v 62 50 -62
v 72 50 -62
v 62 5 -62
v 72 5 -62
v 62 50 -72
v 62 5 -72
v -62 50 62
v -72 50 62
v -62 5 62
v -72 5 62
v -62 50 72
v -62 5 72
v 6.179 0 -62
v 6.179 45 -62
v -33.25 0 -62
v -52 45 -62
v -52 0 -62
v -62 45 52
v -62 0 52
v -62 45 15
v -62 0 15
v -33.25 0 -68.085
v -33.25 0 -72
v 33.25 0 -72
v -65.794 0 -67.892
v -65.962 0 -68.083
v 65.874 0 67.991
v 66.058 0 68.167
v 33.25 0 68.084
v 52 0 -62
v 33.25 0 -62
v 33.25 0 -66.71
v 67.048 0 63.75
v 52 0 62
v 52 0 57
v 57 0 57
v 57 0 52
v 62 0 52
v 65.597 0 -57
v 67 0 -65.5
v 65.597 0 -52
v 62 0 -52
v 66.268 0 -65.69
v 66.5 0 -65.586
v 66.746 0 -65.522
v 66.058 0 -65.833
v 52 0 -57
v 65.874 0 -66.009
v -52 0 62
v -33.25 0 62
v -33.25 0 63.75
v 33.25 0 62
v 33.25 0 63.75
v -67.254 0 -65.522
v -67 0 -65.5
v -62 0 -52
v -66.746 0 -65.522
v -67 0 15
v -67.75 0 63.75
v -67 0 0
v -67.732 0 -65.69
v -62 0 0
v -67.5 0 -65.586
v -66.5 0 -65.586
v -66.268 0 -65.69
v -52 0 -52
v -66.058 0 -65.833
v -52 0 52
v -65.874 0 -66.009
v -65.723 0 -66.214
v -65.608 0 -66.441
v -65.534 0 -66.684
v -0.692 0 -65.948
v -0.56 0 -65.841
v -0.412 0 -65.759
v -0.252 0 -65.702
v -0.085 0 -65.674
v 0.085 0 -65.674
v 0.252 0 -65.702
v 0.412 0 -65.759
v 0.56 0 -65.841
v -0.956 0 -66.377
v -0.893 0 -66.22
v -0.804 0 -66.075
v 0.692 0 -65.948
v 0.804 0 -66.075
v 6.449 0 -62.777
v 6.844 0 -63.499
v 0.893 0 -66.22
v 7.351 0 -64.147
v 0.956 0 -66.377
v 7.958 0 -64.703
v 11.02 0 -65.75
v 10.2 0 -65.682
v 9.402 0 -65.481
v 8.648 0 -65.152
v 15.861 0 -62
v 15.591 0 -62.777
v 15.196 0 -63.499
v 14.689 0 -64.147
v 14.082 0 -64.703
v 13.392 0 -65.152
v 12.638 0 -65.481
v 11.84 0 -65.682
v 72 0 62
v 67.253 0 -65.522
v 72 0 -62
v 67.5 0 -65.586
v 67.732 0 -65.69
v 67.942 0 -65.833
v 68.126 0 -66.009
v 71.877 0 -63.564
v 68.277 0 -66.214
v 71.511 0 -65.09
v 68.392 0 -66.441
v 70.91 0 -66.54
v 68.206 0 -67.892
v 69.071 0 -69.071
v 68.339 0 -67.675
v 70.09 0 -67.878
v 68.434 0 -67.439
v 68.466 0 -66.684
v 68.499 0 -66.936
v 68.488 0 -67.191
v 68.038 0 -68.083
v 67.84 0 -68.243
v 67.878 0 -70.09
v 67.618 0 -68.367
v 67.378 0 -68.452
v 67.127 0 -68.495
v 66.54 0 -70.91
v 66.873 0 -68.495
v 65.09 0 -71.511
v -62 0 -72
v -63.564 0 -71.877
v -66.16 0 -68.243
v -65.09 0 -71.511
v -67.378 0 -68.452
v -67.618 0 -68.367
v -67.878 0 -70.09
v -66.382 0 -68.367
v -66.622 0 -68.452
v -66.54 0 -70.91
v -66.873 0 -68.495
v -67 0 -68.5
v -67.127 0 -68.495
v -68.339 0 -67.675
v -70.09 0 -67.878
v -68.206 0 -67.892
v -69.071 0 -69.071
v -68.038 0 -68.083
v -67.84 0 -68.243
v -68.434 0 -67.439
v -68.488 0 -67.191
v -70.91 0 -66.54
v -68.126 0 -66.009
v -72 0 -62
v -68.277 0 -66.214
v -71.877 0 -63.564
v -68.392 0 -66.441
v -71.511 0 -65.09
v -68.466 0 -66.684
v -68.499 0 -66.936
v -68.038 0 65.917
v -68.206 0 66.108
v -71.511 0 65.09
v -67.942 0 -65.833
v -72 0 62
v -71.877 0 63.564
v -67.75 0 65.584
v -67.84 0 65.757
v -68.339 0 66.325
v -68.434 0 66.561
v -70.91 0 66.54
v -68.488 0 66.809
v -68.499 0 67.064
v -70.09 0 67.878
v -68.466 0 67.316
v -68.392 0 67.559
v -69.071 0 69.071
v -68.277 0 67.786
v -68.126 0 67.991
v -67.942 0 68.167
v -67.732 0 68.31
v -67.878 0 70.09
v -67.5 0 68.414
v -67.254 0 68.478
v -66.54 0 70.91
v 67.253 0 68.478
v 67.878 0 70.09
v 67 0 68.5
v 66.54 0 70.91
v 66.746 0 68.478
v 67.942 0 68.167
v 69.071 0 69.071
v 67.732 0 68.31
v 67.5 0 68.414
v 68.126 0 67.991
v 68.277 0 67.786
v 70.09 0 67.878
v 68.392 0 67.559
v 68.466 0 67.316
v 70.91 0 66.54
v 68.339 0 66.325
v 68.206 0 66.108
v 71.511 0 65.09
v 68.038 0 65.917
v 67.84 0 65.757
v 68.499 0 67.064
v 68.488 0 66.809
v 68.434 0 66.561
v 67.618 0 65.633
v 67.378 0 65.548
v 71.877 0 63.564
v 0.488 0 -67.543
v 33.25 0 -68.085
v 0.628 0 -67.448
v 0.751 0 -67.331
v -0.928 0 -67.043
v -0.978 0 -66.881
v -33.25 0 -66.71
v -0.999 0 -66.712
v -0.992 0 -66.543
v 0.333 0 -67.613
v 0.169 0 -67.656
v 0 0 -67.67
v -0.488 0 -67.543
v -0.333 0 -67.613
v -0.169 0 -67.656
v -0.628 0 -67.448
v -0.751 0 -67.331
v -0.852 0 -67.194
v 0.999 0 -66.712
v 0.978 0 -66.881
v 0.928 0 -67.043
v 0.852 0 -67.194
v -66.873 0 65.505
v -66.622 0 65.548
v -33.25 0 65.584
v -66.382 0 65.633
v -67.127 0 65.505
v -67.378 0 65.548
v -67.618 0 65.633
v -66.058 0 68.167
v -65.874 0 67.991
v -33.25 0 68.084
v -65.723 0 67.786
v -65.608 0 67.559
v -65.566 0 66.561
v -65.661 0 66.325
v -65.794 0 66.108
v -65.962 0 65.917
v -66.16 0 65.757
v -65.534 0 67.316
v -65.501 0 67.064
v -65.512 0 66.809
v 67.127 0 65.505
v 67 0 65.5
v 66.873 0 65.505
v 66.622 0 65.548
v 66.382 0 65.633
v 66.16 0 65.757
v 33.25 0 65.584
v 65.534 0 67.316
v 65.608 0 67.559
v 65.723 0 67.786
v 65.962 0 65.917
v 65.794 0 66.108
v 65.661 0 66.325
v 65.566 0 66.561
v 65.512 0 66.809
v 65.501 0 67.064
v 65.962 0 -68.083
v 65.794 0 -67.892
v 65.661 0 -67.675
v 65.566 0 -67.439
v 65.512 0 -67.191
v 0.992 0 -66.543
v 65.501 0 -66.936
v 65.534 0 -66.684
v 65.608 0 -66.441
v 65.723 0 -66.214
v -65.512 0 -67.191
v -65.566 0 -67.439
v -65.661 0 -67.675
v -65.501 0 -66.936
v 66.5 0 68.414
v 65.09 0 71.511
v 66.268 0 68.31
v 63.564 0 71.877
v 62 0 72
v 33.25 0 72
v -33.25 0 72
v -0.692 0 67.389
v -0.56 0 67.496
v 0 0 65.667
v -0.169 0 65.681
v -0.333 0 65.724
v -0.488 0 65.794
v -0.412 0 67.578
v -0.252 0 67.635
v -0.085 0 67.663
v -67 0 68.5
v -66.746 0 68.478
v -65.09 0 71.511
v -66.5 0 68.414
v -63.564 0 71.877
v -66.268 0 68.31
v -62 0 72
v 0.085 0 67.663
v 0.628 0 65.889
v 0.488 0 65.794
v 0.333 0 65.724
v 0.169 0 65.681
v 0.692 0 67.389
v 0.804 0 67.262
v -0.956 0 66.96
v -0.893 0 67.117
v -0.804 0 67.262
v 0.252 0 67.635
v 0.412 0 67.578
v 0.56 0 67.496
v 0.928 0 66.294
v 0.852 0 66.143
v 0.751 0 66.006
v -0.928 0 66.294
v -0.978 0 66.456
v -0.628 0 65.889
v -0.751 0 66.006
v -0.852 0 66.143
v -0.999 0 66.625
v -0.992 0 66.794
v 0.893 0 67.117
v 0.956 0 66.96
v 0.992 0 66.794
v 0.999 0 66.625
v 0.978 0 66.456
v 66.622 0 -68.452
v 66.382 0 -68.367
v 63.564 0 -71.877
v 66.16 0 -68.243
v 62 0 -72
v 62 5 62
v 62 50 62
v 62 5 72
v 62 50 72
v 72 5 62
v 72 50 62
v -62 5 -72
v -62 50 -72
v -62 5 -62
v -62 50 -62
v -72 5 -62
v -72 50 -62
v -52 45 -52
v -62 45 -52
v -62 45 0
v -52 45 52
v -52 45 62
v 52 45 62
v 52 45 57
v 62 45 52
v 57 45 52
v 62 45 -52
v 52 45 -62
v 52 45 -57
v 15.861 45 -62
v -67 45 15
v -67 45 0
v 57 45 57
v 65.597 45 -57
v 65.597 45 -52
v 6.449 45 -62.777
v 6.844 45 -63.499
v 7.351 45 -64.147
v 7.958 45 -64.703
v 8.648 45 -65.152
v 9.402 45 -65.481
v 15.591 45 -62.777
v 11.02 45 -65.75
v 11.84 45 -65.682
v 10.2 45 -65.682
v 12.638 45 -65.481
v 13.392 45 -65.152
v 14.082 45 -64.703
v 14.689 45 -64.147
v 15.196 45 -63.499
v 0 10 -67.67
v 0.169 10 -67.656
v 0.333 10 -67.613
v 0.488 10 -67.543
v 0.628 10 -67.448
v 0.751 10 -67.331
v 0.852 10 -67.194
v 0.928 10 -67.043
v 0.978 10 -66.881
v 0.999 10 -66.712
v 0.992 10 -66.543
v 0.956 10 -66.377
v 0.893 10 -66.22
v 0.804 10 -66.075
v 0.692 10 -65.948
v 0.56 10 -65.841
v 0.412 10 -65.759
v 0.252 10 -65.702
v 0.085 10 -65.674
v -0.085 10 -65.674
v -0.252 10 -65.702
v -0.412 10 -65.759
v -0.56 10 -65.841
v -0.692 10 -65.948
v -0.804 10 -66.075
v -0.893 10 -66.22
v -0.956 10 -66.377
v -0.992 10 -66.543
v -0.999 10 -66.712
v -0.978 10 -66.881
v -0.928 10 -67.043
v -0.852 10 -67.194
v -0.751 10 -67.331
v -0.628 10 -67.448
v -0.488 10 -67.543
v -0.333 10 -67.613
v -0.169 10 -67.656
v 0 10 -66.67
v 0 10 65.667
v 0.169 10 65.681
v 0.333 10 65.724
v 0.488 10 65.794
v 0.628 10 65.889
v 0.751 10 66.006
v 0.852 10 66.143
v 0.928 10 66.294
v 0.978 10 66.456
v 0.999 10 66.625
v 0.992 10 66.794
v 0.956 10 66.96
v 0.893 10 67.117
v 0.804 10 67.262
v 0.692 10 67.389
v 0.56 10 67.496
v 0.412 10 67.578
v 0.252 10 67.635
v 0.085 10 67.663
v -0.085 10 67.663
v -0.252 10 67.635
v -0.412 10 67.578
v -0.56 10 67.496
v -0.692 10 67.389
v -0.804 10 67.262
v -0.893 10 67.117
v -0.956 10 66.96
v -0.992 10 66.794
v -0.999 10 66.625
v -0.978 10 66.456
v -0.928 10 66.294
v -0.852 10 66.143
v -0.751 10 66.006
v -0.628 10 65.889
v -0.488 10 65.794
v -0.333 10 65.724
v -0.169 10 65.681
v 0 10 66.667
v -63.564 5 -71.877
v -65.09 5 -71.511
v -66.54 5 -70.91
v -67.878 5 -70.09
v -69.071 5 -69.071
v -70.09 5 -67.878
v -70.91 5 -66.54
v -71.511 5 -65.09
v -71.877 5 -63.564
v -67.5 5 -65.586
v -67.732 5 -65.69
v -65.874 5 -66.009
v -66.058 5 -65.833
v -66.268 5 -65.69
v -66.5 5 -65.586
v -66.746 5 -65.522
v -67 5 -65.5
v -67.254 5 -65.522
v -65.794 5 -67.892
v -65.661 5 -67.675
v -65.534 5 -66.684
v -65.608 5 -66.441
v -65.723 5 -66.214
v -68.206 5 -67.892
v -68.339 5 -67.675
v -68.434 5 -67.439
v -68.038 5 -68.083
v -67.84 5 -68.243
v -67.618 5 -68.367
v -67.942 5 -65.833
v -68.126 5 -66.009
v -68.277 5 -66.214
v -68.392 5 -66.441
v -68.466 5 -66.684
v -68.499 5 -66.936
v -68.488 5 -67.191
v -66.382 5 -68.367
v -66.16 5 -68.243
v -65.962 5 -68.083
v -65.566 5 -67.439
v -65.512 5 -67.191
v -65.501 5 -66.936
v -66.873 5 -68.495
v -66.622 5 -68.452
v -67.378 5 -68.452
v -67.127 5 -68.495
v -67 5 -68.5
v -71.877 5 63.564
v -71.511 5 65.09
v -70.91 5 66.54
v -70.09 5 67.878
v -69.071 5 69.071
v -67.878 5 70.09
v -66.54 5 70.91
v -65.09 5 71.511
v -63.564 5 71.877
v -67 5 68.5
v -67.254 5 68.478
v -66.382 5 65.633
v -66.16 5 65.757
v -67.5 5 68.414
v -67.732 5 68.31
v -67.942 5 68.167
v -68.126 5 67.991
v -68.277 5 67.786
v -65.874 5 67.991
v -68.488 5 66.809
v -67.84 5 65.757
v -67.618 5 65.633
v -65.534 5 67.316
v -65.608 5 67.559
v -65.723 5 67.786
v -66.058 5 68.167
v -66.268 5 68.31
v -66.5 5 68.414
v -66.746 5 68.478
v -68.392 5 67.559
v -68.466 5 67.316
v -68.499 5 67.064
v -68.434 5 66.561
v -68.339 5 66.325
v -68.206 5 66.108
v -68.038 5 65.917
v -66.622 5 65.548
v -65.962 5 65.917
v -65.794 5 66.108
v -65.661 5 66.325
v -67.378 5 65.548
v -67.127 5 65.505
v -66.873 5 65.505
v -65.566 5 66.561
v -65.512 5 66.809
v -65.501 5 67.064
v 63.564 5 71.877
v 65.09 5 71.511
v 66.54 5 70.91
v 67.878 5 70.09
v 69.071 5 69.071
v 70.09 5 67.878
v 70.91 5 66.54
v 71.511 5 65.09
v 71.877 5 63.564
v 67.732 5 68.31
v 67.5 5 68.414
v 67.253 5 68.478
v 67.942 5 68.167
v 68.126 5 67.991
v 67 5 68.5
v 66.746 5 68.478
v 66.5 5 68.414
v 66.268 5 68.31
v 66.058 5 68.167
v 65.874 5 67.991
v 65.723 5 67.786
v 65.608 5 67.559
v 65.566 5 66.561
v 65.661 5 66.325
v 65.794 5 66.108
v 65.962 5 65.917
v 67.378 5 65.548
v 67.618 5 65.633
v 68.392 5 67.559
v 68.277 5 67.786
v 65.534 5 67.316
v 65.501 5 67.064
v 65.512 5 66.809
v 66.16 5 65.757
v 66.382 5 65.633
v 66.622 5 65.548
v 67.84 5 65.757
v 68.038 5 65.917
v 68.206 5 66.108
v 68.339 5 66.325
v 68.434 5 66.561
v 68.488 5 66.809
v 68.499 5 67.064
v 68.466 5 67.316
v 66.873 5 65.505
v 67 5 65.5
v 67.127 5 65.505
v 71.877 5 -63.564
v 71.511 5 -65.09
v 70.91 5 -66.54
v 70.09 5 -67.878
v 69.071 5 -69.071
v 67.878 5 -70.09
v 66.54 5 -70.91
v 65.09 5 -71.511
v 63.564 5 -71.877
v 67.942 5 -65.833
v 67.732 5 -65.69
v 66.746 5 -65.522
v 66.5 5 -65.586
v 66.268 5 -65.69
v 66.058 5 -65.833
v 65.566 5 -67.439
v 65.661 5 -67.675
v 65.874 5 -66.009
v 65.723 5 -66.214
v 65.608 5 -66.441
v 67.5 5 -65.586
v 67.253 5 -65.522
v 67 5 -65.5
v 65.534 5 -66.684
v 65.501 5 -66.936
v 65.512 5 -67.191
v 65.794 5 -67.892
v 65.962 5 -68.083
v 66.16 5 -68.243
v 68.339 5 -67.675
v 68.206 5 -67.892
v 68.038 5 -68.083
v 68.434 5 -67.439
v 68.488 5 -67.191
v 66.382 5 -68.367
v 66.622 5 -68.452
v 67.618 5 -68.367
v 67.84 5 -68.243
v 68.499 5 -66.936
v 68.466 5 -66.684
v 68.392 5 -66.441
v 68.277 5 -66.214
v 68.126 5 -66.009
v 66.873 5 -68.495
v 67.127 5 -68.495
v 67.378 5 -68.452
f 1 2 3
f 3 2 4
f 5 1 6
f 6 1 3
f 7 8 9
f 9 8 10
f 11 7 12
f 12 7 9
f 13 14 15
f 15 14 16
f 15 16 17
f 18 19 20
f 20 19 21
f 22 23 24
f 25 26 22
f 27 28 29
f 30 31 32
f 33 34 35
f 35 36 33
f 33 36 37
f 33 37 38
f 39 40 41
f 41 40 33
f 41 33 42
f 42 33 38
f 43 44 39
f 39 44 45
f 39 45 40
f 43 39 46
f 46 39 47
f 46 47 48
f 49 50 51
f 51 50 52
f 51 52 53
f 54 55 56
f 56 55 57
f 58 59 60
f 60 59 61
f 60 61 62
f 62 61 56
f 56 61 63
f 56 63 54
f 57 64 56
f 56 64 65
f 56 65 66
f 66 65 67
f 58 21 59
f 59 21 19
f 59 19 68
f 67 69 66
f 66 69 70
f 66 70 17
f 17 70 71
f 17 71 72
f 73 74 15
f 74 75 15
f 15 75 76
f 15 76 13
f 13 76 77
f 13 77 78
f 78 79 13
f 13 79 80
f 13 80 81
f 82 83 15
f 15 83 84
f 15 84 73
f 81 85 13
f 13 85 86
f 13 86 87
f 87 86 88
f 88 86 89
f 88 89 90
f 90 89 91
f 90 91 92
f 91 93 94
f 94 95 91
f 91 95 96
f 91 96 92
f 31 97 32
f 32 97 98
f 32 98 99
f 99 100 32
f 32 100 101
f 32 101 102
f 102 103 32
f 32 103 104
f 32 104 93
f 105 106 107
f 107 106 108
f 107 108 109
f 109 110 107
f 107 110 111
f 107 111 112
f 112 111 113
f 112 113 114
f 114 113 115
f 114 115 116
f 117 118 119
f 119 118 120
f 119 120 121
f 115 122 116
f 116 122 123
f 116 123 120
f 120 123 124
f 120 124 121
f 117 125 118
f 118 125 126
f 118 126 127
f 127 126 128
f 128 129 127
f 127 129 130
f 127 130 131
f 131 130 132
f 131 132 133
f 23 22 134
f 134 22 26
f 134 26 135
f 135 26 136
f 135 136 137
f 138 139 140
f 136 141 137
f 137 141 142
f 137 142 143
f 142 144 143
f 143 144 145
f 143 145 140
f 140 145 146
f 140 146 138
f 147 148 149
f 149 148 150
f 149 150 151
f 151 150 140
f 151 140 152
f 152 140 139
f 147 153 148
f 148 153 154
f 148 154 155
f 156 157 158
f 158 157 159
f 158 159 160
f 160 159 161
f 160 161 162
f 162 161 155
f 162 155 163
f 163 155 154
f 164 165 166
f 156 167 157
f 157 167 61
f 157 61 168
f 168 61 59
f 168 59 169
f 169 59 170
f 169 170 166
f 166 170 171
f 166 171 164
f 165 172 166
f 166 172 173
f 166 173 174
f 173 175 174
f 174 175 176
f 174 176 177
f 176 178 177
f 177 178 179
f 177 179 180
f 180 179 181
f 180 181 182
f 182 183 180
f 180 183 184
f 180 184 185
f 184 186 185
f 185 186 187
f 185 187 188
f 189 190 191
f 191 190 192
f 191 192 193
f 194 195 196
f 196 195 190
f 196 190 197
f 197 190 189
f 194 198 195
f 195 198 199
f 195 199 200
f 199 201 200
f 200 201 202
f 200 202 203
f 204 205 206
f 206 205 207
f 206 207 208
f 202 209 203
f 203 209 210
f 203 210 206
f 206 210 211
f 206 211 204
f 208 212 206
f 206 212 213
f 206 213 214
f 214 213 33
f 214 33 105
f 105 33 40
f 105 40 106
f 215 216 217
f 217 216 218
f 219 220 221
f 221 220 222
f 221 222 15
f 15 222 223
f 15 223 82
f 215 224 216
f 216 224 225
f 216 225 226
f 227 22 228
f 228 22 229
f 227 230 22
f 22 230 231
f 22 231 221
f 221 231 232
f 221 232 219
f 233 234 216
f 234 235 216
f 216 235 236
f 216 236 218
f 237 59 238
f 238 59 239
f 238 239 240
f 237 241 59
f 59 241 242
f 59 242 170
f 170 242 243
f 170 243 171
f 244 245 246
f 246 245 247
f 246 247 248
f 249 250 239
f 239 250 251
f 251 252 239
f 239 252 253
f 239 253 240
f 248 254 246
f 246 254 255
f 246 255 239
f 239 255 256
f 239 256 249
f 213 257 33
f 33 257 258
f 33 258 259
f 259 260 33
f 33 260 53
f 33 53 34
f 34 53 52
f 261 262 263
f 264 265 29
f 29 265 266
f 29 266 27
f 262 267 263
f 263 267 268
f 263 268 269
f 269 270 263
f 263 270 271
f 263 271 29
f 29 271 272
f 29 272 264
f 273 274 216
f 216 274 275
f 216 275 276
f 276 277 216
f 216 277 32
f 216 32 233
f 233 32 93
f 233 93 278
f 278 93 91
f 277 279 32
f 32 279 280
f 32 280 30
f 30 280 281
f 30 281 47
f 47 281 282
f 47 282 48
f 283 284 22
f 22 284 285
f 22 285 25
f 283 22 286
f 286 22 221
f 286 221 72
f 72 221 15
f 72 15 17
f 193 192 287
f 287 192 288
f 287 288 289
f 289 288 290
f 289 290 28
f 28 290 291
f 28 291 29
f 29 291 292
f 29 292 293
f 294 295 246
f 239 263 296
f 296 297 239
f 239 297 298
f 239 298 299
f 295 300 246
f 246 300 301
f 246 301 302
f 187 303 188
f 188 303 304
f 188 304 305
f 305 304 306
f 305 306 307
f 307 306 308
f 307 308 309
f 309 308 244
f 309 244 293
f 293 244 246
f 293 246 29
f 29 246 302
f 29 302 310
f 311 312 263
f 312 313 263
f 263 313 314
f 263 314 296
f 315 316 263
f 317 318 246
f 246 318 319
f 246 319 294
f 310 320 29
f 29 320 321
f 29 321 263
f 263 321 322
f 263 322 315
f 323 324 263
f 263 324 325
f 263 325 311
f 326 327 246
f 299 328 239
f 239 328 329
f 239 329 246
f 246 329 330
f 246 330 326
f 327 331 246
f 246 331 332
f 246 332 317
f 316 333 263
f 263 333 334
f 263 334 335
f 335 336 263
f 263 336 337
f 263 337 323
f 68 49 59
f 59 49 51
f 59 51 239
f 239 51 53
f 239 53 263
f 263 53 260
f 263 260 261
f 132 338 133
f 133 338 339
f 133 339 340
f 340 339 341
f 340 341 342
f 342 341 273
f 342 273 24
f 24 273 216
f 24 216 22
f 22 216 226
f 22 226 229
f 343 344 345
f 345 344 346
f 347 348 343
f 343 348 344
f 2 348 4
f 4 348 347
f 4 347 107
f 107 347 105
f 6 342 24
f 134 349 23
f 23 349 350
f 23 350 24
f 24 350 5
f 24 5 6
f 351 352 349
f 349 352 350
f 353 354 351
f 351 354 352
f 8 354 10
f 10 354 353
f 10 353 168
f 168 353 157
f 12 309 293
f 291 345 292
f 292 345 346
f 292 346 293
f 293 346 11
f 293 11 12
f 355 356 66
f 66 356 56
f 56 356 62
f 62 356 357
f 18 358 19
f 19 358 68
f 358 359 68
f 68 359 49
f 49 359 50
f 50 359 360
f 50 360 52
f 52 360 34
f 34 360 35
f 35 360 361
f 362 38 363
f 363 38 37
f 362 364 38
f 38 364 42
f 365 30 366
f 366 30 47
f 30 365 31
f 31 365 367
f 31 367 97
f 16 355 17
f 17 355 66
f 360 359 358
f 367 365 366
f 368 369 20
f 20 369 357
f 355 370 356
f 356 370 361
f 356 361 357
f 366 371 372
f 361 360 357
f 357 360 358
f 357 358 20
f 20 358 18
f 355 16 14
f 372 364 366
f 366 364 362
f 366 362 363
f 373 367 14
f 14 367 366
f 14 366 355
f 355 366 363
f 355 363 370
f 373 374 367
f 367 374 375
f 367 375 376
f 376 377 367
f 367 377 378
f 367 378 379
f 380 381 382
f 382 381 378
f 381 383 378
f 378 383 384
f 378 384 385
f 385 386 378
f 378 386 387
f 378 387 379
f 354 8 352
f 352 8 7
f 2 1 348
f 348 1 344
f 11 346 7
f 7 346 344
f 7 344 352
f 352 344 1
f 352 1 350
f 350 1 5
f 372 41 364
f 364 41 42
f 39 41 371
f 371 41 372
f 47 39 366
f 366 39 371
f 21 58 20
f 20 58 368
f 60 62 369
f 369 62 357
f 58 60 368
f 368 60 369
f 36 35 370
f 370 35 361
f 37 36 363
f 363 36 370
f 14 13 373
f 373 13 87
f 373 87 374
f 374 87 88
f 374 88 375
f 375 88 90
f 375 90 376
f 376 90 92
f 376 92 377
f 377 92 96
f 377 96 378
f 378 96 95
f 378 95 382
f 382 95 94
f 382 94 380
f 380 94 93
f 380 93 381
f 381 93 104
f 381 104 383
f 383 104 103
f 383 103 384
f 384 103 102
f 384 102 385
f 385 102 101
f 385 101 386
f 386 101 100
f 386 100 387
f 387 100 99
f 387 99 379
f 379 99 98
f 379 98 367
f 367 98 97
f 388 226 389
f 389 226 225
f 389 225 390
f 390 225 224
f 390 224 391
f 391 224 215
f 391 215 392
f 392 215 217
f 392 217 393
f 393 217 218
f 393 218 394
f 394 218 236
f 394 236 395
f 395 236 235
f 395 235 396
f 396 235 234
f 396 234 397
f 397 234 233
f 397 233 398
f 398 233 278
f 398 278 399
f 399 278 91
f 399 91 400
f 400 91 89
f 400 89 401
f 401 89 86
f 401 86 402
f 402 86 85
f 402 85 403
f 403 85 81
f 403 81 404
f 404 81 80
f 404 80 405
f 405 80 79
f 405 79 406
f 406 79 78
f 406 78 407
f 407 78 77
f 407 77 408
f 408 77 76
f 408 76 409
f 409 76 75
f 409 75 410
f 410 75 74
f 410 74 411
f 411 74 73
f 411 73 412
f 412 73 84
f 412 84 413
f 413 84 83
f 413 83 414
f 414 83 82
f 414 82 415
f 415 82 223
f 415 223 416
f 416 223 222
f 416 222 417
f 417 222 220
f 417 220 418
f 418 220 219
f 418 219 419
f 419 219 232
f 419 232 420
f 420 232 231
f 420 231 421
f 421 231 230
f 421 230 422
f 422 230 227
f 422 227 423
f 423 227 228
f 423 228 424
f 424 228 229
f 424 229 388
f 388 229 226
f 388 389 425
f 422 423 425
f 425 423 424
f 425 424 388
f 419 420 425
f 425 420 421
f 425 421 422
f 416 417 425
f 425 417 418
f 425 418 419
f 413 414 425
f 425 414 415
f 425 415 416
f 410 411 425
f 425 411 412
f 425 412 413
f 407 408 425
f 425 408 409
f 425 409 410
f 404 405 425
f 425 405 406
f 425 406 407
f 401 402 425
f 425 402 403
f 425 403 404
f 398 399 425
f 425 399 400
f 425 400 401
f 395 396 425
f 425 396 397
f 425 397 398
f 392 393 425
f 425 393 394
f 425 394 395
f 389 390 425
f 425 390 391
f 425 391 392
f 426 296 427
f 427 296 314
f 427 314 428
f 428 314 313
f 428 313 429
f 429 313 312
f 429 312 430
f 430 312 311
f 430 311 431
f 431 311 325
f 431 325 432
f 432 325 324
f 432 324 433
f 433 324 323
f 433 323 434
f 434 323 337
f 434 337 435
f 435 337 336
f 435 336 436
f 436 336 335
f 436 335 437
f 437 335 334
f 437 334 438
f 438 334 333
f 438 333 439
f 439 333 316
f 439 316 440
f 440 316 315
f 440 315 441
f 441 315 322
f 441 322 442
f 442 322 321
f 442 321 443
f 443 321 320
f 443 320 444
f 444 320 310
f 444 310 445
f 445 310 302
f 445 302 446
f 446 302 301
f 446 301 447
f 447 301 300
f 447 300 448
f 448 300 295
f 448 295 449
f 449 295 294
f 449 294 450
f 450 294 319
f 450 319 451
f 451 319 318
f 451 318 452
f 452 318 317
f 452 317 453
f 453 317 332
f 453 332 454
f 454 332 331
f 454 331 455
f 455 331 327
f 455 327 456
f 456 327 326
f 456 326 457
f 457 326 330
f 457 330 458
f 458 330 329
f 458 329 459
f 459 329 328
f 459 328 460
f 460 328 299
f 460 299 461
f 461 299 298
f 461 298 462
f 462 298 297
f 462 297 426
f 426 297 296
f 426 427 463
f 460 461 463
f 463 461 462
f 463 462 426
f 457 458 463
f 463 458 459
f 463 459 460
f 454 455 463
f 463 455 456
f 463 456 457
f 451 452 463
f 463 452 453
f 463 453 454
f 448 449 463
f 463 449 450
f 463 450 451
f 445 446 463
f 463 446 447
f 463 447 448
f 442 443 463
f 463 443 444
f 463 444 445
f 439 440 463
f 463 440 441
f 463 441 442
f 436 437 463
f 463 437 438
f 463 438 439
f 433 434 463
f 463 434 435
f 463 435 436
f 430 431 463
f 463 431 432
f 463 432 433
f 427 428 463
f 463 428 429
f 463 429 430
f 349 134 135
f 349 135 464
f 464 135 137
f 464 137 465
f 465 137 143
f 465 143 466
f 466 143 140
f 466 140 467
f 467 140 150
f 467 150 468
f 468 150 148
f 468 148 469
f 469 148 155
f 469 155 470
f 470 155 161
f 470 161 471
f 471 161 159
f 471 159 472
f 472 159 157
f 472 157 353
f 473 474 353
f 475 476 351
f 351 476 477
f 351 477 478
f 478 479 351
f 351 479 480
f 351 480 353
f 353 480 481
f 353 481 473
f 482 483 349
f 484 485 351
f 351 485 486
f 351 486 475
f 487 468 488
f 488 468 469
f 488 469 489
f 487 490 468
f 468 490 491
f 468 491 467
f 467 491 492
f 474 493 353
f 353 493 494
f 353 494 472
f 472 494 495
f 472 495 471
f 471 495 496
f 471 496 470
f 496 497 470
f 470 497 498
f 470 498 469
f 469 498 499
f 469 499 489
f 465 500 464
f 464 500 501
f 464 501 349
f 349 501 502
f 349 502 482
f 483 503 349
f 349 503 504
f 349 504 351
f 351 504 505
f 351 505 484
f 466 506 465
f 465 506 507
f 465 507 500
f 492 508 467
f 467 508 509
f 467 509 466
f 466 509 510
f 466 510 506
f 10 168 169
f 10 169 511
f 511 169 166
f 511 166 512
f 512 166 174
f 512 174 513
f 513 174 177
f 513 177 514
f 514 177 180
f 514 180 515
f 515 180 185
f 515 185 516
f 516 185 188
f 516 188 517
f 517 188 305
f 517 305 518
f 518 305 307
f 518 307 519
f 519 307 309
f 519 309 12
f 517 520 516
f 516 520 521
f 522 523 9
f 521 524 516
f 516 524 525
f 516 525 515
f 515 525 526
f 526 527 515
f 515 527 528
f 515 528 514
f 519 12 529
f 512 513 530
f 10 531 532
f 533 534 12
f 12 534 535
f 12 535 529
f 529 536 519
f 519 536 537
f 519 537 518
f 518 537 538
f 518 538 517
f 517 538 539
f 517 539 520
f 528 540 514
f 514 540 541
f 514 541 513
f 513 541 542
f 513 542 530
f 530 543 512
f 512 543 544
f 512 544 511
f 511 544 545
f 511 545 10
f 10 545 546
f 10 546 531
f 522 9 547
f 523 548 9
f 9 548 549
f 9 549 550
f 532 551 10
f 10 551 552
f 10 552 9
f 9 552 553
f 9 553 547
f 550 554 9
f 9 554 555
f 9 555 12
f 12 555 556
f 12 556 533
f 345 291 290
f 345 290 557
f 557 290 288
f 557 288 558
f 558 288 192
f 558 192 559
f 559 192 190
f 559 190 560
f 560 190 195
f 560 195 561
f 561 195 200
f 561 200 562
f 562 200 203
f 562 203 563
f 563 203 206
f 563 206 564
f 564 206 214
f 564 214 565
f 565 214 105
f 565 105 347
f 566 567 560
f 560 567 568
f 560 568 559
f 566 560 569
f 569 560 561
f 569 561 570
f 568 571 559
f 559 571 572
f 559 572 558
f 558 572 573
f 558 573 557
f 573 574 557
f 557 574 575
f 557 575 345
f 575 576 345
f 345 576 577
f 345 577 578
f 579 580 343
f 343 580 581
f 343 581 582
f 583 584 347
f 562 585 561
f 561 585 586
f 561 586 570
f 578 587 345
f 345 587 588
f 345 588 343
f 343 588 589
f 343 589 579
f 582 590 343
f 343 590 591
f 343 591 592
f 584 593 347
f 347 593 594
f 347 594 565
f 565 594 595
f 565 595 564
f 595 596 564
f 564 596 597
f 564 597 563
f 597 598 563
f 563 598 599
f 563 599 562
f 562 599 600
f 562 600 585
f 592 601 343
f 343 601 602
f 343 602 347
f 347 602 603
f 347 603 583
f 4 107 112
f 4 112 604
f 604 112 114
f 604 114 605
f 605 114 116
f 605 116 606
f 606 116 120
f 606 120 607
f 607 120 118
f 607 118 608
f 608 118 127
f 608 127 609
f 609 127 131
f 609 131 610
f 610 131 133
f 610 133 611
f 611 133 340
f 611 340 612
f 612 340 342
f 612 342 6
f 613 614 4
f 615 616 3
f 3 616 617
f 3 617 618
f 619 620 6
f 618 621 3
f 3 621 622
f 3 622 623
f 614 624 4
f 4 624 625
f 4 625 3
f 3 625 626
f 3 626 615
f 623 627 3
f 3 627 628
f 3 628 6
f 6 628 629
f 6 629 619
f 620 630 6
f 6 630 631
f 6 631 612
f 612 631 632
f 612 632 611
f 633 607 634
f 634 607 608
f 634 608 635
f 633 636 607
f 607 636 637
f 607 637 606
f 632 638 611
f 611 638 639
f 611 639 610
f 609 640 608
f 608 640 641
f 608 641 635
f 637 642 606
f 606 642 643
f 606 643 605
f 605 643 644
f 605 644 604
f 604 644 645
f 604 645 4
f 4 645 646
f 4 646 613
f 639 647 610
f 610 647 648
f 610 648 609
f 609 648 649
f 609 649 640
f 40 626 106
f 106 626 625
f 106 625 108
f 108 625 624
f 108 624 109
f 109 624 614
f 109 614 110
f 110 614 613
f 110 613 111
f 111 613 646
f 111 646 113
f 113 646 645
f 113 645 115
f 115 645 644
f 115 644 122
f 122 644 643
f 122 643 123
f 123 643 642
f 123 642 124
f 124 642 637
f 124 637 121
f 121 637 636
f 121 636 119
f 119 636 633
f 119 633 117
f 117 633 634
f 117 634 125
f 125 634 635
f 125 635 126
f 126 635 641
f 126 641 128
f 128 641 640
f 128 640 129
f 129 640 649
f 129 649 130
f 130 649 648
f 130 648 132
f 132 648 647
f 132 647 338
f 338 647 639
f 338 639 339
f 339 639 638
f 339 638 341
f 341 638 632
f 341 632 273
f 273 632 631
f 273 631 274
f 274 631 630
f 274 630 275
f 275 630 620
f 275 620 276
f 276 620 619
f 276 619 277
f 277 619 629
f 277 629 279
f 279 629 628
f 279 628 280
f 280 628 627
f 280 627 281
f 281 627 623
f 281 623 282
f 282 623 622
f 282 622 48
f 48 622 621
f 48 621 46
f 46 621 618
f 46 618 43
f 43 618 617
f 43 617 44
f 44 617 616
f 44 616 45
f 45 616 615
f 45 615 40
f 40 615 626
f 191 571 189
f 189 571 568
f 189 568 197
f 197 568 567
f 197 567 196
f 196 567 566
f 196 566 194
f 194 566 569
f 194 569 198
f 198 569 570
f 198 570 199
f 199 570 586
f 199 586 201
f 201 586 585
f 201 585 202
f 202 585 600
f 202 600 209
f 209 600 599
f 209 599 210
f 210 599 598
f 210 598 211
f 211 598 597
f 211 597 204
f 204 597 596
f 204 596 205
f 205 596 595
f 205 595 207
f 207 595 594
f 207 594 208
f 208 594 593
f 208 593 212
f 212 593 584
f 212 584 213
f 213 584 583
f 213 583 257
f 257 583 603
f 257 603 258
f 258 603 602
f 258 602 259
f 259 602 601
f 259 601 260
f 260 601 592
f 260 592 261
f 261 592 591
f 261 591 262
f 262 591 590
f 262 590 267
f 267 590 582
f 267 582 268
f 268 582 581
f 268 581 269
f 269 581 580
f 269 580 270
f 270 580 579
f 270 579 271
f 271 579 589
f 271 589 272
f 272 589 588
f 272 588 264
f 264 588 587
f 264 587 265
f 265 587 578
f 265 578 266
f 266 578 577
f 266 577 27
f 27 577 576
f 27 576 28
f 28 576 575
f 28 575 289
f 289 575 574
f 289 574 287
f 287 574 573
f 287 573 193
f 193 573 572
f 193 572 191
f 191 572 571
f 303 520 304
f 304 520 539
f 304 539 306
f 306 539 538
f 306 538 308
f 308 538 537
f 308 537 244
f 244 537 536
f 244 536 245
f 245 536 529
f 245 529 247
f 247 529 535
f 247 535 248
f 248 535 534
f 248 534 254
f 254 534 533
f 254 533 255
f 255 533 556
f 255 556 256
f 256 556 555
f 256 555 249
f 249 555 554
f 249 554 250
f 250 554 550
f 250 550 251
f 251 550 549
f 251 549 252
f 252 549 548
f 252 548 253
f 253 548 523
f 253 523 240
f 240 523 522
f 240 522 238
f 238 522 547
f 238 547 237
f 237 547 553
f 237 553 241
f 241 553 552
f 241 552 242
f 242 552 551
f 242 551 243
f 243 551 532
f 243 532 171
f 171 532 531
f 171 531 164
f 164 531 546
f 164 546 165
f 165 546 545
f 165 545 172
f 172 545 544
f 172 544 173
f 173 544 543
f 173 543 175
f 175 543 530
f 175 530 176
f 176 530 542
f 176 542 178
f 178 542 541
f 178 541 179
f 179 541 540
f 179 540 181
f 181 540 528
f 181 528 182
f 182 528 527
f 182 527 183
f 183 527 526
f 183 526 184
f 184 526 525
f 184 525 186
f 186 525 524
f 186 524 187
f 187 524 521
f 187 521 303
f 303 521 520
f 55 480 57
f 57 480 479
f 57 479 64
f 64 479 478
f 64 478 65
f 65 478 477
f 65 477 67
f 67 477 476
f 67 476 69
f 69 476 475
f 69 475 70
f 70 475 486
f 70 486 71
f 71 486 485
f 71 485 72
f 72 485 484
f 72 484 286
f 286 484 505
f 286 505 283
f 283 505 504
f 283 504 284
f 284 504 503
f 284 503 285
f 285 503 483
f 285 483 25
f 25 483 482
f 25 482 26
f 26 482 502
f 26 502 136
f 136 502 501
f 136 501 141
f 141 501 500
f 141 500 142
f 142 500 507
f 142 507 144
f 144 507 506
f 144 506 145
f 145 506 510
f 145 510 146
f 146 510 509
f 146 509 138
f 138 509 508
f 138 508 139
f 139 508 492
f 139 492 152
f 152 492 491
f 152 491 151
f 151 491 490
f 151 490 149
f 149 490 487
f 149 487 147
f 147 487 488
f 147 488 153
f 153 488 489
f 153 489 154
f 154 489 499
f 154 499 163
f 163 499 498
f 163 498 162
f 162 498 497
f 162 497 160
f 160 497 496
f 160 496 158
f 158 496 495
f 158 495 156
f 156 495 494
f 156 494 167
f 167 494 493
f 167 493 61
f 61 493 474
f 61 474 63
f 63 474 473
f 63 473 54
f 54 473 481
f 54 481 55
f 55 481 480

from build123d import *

# Parameters (mm, degrees)
BOSS_EXTRUDE1_DEPTH = 45
BOSS_EXTRUDE2_DEPTH = 5
SKETCH4_W           = 5
SKETCH4_H           = 5
SKETCH4_H_2         = 15
SKETCH4_W_2         = 13.596951961
CUT_EXTRUDE2_DEPTH  = 45
SKETCH5_R           = 5
CUT_EXTRUDE3_DEPTH  = 45
SKETCH6_R           = 1
CUT_EXTRUDE4_DEPTH  = 10
BOSS_EXTRUDE3_DEPTH = 5
SKETCH9_R           = 1.5
CUT_EXTRUDE5_DEPTH  = 5


with BuildPart() as part:
    # Sketch1 → Boss-Extrude1 (new body)
    with BuildSketch(Plane(origin=(0, 0, 0), x_dir=(1, 0, 0), z_dir=(0, 1, 0))):
        Polygon((-62, 72), (62, 72), (62, 62), (72, 62), (72, -62), (62, -62), (62, -72), (-62, -72), (-62, -62), (-72, -62), (-72, 62), (-62, 62), align=None)
        Polygon((-62, 52), (-62, -52), (-52, -52), (-52, -62), (52, -62), (52, -52), (62, -52), (62, 52), (52, 52), (52, 62), (-52, 62), (-52, 52), align=None, mode=Mode.SUBTRACT)
    extrude(amount=BOSS_EXTRUDE1_DEPTH)

    # Sketch2 → Boss-Extrude2 (add)
    with BuildSketch(Plane(origin=(0, 45, 0), x_dir=(1, 0, 0), z_dir=(0, 1, 0))):
        Polygon((-62, 72), (62, 72), (62, 62), (72, 62), (72, -62), (62, -62), (62, -72), (-62, -72), (-62, -62), (-72, -62), (-72, 62), (-62, 62), align=None)
    extrude(amount=BOSS_EXTRUDE2_DEPTH)

    # Sketch4 → Cut-Extrude2 (cut)
    with BuildSketch(Plane.XZ):
        with Locations((54.5, 54.5)):
            Rectangle(SKETCH4_W, SKETCH4_H)
        with Locations((-64.5, 7.5)):
            Rectangle(SKETCH4_W, SKETCH4_H_2)
        with Locations((58.798475981, -54.5)):
            Rectangle(SKETCH4_W_2, SKETCH4_H)
    extrude(amount=-CUT_EXTRUDE2_DEPTH, mode=Mode.SUBTRACT)

    # Sketch5 → Cut-Extrude3 (cut)
    with BuildSketch(Plane.XZ):
        with Locations((11.02, -60.75)):
            Circle(SKETCH5_R)
    extrude(amount=-CUT_EXTRUDE3_DEPTH, mode=Mode.SUBTRACT)

    # Sketch6 → Cut-Extrude4 (cut)
    with BuildSketch(Plane.XZ):
        with Locations(Location((0, 66.667049072, 0), (0, 0, 270))):
            Circle(SKETCH6_R)
        with Locations(Location((0, -66.67, 0), (0, 0, 270))):
            Circle(SKETCH6_R)
    extrude(amount=-CUT_EXTRUDE4_DEPTH, mode=Mode.SUBTRACT)

    # Sketch8 → Boss-Extrude3 (add)
    with BuildSketch(Plane(origin=(0, 0, 0), x_dir=(-1, 0, 0), z_dir=(0, -1, 0))):
        with BuildLine():
            Line((62, 72), (62, 62))
            Line((62, 62), (72, 62))
            ThreePointArc((72, 62), (69.071067812, 69.071067812), (62, 72))
        make_face()
        with BuildLine():
            Line((62, -72), (62, -62))
            Line((62, -62), (72, -62))
            ThreePointArc((72, -62), (69.071067812, -69.071067812), (62, -72))
        make_face()
        with BuildLine():
            Line((-62, -62), (-72, -62))
            ThreePointArc((-72, -62), (-69.071067812, -69.071067812), (-62, -72))
            Line((-62, -72), (-62, -62))
        make_face()
        with BuildLine():
            Line((-62, 62), (-72, 62))
            ThreePointArc((-72, 62), (-69.071067812, 69.071067812), (-62, 72))
            Line((-62, 72), (-62, 62))
        make_face()
    extrude(amount=-BOSS_EXTRUDE3_DEPTH)

    # Sketch9 → Cut-Extrude5 (cut)
    with BuildSketch(Plane(origin=(0, 5, 0), x_dir=(1, 0, 0), z_dir=(0, 1, 0))):
        with Locations(Location((-67, -67, 0), (0, 0, 270))):
            Circle(SKETCH9_R)
        with Locations(Location((67, -67, 0), (0, 0, 90))):
            Circle(SKETCH9_R)
        with Locations(Location((67, 67, 0), (0, 0, 270))):
            Circle(SKETCH9_R)
        with Locations(Location((-67, 67, 0), (0, 0, 90))):
            Circle(SKETCH9_R)
    extrude(amount=-CUT_EXTRUDE5_DEPTH, mode=Mode.SUBTRACT)


solid = part.part
